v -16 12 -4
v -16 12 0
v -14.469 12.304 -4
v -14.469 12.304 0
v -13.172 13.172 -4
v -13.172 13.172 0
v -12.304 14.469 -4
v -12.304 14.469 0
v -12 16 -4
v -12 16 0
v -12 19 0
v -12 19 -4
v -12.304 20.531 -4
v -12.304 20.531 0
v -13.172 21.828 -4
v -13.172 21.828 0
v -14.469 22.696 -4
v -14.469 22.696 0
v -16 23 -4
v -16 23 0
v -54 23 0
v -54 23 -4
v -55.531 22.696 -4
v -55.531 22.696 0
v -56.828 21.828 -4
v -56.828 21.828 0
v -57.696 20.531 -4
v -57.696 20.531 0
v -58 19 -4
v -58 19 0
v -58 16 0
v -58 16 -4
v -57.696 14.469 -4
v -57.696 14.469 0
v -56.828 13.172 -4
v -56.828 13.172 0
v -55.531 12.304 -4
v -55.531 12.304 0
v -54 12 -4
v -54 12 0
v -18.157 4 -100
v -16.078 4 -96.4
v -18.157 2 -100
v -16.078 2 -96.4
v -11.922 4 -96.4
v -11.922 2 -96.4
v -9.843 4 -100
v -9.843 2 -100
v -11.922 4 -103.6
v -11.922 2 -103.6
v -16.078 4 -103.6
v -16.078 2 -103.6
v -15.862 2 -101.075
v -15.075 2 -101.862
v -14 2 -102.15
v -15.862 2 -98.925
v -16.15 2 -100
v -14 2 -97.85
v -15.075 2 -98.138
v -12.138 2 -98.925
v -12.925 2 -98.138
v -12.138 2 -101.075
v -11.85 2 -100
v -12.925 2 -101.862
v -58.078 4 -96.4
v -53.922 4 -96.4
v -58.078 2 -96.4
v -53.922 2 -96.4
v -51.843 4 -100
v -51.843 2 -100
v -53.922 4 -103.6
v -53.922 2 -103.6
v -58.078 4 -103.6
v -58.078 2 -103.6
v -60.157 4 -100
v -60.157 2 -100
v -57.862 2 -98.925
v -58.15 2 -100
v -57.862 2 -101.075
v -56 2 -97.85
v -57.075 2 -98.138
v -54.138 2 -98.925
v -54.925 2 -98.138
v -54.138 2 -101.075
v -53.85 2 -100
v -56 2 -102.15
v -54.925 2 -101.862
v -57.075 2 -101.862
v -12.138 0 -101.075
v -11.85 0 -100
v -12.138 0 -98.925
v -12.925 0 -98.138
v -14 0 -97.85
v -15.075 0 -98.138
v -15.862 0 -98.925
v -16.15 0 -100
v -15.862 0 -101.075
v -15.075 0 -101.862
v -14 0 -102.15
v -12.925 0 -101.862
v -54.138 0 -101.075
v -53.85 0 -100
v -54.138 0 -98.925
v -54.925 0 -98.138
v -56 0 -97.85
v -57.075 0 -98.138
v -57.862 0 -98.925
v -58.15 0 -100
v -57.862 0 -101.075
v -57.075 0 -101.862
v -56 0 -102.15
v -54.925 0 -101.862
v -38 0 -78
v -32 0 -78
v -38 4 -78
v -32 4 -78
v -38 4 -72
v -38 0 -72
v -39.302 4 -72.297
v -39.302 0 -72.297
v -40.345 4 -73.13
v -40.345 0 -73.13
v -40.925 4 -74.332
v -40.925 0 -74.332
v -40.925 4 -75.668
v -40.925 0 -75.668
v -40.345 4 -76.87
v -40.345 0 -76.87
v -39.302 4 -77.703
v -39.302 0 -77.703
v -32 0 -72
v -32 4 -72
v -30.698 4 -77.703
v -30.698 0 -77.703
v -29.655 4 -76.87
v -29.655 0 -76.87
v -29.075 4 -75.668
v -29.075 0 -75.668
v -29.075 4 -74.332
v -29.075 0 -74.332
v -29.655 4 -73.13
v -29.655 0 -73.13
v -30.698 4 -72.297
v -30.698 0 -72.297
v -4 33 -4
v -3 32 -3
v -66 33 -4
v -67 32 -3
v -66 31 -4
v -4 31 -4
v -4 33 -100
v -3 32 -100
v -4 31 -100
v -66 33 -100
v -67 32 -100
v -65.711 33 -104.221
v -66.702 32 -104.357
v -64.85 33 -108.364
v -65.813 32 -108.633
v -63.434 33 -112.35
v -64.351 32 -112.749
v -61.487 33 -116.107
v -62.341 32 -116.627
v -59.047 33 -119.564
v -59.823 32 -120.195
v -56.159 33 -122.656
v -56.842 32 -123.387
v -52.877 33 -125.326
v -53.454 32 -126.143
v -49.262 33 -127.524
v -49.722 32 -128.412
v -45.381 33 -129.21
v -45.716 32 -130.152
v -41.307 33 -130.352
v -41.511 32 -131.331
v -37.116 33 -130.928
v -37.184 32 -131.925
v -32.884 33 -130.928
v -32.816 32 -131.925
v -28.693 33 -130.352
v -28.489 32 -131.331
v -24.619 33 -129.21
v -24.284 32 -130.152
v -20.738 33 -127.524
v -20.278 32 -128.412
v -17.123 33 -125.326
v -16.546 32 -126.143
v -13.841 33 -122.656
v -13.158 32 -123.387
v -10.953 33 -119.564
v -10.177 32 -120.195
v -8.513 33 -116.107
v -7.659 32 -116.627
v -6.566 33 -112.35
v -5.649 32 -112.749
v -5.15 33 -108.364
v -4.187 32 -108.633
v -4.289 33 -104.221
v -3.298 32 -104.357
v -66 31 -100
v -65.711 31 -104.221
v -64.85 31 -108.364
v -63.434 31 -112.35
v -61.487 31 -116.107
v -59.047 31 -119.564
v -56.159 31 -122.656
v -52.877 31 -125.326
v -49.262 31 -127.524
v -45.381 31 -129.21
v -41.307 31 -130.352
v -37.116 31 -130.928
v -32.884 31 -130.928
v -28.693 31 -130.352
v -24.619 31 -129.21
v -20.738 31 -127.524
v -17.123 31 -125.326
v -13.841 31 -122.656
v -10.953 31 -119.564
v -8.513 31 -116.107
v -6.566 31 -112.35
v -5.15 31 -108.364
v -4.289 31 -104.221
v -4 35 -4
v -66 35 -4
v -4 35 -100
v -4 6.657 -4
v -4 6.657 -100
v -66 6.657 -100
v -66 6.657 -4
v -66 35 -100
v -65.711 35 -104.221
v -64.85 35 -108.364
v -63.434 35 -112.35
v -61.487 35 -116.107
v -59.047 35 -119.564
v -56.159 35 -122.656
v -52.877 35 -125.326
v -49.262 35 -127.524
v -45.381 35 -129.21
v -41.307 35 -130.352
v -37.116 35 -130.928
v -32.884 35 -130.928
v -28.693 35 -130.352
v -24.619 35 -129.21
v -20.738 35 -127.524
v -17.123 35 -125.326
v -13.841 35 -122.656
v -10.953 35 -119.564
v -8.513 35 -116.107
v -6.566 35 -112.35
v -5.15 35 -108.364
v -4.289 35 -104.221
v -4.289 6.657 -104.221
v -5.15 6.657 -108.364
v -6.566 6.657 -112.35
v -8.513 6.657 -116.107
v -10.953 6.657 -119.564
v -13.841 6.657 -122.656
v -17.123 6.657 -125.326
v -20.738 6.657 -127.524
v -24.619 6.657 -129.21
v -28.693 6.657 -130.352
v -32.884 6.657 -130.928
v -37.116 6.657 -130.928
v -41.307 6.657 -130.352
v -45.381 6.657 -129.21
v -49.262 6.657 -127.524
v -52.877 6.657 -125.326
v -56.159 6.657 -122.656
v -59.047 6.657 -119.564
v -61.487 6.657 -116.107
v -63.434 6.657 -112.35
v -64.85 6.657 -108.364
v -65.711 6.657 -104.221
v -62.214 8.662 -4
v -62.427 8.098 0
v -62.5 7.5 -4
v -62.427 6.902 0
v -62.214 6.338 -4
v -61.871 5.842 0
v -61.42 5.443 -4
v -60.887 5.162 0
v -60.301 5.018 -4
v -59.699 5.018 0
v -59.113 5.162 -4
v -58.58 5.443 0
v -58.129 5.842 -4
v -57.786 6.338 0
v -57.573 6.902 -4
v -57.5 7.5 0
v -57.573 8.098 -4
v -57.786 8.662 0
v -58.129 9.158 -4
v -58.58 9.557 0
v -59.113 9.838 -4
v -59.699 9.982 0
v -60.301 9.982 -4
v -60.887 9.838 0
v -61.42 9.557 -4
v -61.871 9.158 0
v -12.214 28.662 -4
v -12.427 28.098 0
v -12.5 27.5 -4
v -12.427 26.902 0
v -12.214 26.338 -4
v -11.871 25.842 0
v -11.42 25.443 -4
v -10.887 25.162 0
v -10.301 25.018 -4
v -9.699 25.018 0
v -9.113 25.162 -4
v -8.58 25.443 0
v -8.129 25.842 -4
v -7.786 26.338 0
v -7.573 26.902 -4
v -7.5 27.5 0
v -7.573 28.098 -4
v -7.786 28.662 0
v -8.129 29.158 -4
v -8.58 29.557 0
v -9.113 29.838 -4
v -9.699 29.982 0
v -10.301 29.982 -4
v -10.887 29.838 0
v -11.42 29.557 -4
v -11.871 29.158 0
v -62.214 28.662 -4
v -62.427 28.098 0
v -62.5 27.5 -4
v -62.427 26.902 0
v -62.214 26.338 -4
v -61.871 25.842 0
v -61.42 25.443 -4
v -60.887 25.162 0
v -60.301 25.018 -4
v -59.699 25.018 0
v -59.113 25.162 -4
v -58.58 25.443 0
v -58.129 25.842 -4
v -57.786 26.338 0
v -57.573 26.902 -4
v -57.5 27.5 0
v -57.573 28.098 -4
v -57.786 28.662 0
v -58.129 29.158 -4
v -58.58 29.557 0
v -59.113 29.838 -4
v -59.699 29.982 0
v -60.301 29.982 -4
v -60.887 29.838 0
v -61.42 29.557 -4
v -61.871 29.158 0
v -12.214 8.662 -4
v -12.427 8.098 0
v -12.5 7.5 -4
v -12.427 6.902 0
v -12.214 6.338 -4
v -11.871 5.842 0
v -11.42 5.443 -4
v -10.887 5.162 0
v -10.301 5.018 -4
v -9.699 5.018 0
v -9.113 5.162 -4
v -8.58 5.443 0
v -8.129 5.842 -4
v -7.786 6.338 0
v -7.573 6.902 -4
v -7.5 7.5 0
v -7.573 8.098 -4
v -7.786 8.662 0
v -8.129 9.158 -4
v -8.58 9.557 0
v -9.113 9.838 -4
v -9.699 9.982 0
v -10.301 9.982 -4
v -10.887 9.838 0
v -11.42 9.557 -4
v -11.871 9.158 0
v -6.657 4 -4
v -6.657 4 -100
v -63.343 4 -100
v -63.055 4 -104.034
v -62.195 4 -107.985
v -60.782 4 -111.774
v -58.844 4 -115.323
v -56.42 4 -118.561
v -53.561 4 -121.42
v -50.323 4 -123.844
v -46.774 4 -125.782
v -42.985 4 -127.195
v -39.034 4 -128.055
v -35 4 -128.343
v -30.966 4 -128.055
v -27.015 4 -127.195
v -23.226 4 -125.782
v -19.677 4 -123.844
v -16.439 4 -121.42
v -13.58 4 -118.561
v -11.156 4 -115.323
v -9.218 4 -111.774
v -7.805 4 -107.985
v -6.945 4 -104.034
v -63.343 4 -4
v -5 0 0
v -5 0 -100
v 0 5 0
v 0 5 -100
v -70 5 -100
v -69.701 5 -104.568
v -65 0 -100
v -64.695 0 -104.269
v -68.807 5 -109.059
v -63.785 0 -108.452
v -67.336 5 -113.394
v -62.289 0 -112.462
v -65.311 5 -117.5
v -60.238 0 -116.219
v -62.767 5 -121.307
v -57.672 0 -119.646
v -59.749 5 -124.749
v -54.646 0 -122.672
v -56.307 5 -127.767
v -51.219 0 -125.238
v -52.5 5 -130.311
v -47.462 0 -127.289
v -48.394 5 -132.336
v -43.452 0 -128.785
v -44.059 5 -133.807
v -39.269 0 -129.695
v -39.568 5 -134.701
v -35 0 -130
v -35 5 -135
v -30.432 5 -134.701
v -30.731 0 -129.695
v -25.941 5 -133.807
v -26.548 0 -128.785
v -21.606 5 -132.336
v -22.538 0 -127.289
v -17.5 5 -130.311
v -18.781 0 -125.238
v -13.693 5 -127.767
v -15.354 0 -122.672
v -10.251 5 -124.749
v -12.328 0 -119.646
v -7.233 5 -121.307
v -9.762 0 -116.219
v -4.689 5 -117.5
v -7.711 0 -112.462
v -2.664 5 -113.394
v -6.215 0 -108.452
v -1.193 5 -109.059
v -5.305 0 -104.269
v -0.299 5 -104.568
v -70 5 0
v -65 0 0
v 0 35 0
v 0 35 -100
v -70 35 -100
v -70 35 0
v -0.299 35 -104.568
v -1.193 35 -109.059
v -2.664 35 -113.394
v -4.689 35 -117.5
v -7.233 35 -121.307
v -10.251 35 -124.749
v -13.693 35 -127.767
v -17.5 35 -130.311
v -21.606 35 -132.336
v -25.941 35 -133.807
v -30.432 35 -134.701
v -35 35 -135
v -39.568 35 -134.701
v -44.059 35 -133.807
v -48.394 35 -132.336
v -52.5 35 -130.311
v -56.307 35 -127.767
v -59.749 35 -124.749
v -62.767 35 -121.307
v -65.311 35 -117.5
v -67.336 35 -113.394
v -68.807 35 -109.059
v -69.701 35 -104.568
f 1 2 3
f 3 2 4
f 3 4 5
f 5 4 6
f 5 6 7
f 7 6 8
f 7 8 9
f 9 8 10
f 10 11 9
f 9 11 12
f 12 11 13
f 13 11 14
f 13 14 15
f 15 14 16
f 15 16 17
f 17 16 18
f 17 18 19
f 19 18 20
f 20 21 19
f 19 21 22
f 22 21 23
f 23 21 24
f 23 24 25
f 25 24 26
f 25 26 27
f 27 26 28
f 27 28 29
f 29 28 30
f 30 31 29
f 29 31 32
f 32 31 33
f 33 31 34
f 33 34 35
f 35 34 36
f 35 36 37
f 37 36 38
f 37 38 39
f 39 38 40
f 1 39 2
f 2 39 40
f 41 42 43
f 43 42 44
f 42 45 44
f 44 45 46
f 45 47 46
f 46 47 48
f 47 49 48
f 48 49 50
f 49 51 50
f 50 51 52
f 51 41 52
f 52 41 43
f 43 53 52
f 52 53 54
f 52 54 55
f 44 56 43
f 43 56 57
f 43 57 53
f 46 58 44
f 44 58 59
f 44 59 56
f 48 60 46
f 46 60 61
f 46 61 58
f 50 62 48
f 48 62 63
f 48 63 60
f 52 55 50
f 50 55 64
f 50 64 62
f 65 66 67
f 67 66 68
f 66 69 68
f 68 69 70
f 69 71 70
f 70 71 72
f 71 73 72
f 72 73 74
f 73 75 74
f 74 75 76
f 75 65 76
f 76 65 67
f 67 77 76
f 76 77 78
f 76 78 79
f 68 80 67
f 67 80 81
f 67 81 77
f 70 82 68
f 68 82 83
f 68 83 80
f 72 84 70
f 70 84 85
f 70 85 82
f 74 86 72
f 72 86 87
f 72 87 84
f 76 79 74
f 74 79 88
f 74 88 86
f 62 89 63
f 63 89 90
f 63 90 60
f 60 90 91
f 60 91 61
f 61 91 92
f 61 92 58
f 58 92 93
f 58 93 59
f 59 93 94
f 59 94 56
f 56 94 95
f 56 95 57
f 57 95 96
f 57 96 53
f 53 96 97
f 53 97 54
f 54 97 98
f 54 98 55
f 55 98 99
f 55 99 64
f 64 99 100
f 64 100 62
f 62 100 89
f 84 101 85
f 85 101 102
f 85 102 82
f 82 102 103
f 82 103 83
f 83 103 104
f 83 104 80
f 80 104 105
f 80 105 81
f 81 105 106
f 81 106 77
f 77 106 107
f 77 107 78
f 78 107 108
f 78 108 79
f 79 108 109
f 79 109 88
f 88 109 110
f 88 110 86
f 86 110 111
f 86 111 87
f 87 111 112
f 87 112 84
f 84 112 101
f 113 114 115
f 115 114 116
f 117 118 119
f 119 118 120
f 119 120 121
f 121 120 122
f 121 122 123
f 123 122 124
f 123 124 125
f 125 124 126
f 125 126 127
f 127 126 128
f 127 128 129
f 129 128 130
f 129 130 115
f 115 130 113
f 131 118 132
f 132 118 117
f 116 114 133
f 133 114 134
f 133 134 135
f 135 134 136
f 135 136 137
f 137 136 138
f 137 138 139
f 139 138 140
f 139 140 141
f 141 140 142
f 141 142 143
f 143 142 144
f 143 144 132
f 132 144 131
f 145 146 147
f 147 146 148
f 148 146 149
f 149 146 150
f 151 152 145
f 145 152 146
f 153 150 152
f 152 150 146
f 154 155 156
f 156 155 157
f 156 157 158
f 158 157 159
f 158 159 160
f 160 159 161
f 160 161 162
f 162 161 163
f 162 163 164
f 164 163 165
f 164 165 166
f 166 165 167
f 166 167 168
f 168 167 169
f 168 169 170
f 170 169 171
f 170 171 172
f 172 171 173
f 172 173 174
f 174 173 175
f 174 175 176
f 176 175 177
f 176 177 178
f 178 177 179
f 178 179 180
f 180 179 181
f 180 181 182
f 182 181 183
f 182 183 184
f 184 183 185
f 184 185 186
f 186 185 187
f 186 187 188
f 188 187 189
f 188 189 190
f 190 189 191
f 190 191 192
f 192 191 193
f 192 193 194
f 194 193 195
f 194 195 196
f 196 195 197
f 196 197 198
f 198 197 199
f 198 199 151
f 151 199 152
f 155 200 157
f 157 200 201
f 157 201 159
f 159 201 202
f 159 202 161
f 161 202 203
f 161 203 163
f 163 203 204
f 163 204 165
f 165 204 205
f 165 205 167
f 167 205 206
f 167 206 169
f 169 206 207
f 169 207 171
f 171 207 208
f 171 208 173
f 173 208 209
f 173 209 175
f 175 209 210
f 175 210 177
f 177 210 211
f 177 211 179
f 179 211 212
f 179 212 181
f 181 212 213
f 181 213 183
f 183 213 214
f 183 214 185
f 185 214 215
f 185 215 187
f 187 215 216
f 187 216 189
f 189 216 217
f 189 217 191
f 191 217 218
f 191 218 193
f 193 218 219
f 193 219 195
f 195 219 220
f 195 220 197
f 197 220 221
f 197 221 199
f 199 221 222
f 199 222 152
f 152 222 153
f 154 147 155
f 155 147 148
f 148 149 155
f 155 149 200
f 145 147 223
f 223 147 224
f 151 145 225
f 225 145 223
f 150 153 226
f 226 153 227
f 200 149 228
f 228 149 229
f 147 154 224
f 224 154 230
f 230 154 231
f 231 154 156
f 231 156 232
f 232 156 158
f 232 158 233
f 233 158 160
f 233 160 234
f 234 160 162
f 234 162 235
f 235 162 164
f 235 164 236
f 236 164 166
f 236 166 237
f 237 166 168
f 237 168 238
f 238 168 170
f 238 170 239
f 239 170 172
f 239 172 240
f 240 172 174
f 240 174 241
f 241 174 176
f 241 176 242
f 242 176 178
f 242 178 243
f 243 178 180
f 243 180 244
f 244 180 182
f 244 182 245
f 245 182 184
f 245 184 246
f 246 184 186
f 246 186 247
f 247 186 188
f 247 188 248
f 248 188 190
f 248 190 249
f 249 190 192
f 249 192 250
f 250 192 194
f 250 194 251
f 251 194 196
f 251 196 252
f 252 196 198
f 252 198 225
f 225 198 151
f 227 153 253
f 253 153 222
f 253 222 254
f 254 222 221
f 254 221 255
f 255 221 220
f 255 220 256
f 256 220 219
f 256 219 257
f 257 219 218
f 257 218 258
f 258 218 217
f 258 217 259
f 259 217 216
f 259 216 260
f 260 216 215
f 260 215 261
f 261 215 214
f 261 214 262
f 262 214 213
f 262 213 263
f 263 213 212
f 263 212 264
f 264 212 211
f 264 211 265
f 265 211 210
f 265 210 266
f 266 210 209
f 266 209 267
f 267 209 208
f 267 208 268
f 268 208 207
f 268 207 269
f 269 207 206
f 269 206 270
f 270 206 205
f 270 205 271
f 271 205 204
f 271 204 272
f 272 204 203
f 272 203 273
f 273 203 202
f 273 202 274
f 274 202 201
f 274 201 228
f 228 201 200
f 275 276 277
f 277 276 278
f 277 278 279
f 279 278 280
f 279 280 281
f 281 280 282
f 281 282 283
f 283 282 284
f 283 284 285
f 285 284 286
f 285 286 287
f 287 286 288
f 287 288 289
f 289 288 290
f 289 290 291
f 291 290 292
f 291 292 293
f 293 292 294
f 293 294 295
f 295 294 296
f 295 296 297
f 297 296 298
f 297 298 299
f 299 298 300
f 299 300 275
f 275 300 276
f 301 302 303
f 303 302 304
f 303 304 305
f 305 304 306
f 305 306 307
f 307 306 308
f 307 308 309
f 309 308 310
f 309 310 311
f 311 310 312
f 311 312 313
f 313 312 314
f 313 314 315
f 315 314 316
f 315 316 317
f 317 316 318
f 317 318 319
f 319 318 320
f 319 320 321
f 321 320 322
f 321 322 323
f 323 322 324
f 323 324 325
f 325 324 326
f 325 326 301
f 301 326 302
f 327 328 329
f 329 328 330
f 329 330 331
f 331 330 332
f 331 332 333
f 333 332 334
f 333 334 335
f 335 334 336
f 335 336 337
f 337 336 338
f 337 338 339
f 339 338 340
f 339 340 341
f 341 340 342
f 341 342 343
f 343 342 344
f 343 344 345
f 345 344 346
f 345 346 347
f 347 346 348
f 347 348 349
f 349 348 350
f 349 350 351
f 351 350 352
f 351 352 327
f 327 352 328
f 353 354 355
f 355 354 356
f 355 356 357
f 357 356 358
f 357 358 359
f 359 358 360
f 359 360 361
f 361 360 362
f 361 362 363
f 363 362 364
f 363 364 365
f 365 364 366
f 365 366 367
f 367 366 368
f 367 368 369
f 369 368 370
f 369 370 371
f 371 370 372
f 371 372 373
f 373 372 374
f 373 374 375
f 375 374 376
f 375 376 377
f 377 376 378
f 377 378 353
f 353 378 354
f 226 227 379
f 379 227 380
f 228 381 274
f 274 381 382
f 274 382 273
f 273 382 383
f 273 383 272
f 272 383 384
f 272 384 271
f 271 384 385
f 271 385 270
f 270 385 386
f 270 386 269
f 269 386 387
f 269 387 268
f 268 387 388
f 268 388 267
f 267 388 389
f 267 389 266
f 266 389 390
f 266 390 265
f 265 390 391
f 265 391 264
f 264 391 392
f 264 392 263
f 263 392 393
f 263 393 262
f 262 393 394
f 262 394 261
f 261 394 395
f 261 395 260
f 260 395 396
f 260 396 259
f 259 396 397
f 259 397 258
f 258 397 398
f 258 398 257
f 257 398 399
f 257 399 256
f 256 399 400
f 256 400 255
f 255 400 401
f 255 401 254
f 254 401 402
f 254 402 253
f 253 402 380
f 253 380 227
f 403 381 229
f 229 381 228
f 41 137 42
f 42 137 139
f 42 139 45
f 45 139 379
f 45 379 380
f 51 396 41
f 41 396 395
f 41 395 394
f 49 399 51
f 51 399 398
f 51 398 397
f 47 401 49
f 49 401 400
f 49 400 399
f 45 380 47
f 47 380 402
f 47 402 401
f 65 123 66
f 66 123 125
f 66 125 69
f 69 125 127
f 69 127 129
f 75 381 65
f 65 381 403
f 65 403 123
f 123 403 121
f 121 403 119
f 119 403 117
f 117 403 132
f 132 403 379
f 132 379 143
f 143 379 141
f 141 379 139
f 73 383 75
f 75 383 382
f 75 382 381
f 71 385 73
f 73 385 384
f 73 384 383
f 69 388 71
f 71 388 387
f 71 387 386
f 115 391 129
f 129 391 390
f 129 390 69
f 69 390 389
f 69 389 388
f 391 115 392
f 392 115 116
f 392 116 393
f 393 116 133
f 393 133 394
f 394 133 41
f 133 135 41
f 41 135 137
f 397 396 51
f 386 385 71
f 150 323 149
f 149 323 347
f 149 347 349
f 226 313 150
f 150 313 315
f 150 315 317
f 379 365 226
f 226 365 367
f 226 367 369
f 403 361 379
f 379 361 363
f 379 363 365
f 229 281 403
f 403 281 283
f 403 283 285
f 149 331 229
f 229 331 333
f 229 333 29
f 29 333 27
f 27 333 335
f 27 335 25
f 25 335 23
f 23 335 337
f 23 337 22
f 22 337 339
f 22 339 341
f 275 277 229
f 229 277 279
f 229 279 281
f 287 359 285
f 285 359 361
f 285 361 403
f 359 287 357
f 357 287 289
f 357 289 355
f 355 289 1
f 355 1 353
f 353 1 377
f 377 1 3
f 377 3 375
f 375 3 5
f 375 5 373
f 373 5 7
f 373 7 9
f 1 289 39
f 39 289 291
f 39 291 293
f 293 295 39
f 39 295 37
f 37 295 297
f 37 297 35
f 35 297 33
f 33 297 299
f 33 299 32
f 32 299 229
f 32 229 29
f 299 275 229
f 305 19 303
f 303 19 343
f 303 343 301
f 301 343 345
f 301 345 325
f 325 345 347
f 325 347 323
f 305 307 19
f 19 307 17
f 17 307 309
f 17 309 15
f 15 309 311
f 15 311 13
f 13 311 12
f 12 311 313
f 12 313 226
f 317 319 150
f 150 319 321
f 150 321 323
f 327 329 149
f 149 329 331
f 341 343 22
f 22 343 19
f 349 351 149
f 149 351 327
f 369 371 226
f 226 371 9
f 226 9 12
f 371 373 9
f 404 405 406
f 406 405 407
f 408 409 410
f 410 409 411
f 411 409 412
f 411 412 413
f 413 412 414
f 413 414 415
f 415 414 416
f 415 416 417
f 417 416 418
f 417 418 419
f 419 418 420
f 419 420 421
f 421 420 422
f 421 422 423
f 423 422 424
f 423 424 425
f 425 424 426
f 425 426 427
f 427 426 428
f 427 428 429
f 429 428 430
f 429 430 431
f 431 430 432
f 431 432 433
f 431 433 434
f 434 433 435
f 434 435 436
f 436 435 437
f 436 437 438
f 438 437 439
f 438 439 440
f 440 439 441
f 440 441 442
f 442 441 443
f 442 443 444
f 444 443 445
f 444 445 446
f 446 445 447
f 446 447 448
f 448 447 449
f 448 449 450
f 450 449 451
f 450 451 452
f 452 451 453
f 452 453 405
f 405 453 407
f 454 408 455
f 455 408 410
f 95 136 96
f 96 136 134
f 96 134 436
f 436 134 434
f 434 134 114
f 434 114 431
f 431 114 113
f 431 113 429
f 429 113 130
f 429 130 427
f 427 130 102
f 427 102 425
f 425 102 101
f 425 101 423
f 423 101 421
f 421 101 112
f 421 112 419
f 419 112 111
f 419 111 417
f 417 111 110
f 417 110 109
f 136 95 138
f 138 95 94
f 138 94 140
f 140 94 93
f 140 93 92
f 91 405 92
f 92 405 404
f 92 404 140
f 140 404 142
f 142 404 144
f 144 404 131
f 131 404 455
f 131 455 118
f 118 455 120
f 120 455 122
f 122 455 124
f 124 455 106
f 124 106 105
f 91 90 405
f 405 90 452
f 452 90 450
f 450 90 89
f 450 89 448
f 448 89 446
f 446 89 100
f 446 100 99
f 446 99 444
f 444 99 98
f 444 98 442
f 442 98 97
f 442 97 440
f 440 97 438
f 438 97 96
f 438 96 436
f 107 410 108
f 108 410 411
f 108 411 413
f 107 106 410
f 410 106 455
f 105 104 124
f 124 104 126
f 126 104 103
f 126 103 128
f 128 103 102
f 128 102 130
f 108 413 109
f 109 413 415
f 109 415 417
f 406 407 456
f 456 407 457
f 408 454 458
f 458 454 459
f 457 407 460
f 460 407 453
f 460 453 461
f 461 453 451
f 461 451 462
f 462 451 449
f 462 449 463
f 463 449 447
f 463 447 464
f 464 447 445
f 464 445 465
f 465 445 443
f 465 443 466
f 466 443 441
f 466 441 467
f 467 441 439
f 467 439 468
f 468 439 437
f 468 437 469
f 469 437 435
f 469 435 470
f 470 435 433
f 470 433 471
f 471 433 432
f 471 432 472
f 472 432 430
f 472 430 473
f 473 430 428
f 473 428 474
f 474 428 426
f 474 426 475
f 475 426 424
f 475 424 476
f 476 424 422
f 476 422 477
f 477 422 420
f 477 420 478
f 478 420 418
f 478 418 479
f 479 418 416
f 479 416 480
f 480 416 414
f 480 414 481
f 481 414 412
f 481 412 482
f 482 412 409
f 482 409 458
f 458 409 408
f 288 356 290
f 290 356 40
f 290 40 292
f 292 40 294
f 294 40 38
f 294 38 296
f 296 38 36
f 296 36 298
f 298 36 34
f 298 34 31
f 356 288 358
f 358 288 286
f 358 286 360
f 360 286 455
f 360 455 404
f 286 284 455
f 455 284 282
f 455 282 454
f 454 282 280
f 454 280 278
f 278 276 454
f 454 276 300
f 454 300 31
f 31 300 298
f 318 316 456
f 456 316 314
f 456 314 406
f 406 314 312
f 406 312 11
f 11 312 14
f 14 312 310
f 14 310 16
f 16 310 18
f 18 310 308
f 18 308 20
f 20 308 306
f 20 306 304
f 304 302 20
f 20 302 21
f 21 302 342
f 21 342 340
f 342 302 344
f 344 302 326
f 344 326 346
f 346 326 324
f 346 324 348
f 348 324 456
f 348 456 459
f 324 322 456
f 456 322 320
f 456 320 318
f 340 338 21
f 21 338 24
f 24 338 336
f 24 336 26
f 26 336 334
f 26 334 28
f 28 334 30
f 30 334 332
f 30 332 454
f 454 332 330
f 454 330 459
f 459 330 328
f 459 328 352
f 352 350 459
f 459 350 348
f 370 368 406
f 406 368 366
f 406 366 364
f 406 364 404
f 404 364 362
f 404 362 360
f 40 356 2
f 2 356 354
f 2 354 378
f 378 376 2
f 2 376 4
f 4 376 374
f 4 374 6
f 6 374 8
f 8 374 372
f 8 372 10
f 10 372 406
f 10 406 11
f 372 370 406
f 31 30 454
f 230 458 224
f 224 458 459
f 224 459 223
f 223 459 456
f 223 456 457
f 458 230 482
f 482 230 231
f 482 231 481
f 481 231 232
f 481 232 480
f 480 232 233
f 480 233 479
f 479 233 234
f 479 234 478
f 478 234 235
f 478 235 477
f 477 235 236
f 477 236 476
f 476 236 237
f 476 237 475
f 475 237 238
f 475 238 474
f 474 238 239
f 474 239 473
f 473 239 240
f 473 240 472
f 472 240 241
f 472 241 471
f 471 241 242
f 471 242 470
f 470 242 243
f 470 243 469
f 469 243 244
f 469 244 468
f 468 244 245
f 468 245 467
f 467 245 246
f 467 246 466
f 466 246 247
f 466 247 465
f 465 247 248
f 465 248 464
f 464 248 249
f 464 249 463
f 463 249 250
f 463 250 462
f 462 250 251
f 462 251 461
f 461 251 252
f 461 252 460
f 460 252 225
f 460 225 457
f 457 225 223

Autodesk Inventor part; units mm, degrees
ref_plane "YZ Plane" through (0, 0, 0) normal (1, 0, 0) x (0, 1, 0)
sketch "Sketch1" plane through (0, 0, 0) normal (0, 1, 0) x (-1, 0, 0)
  line L0 (0, 0) -> (70, 0)
  line L1 (70, 0) -> (70, -100)
  line L2 (70, -100) -> (0, -100)
  line L3 (0, -100) -> (0, 0)
  circle A0 centre (35, -100) radius 35
  point P0 (0, -100)
  dimension "d0" = 70
  dimension "d1" = 100
extrude "Extrusion1" add sketch "Sketch1" along normal blind 35
chamfer "Chamfer1" distance 5 angle 45 3 edges at (0, 0, -50) (-35, 0, -135) (-70, 0, -50)
shell "Shell1" thickness 4 removed faces 1 at (-23.3333, 35, -33.3333)
sketch "Sketch2" plane through (-70, 0, 0) normal (0, 0, 1) x (1, 0, 0)
  line L0 (35, 44.7542) -> (35, -30.4775) construction
  line L1 (75.874, 17.5) -> (-5.874, 17.5) construction
  line L2 (0, 35) -> (70, 35) projected
  line L3 (70, 0) -> (70, 35) projected
  line L4 (0, 0) -> (0, 35) projected
  line L5 (0, 0) -> (70, 0) projected
  line L6 (58, 23) -> (12, 23)
  line L7 (12, 23) -> (12, 12)
  line L8 (12, 12) -> (58, 12)
  line L9 (58, 12) -> (58, 23)
  circle A0 centre (10, 27.5) radius 2.5
  circle A1 centre (60, 7.5) radius 2.5
  circle A2 centre (10, 7.5) radius 2.5
  circle A3 centre (60, 27.5) radius 2.5
  point P0 (35, 17.5)
  point P1 (35, 35)
  point P2 (70, 17.5)
  dimension "d7" = 12
  dimension "d8" = 5
  dimension "d9" = 50
  dimension "d10" = 20
extrude "Extrusion2" cut sketch "Sketch2" against normal blind 50 contours L9 L8 L7 L6 | A0 | A1 | A2 | A3
ref_plane "Work Plane2" through (0, 32, 0) normal (0, 1, 0) x (1, 0, 0)
sketch "Sketch4" plane through (0, 32, 0) normal (0, 1, 0) x (1, 0, 0)
  line L0 (-66, 4) -> (-66, 100) projected
  arc A0 (-4, 100) -> (-66, 100) centre (-35, 100) ccw projected
  line L1 (-4, 100) -> (-4, 4) projected
  line L2 (-4, 4) -> (-66, 4) projected
  point P0 (0, 0)
ref_plane "Work Plane3" through (-66, 32, -4) normal (0, 0, -1) x (-1, 0, 0)
sketch "Sketch5" plane through (-66, 32, -4) normal (0, 0, -1) x (-1, 0, 0)
  line L0 (0, 1) -> (1, 0)
  line L1 (1, 0) -> (0, -1)
  line L2 (0, -1) -> (0, 1)
  line L3 (2.655, 0) -> (0.8949, 0) construction
  point P0 (-66, -32)
  point P1 (0, 0)
  point P2 (0, 0)
  point P3 (0, 0)
  dimension "d29" = 1
  dimension "d30" = 45
sweep "Sweep1" cut profiles "Sketch5" path "Sketch4"
sketch "Sketch6" plane through (-35, 4, -100) normal (0, 1, 0) x (1, 0, 0)
  circle A0 centre (-21, 0) radius 2.15
  circle A1 centre (21, 0) radius 2.15
  line L0 (0, -2.8251) -> (0, 10.2985) construction
  arc A2 (31, 0) -> (-31, 0) centre (0, 0) ccw projected
  line L1 (3, -25) -> (-3, -25) construction
  line L2 (3, -22) -> (-3, -22)
  line L3 (-3, -28) -> (3, -28)
  arc A3 (3, -28) -> (3, -22) centre (3, -25) ccw
  arc A4 (-3, -22) -> (-3, -28) centre (-3, -25) ccw
  point P0 (35, -100)
  point P1 (0, 31)
  point P2 (0, -25)
  dimension "d33" = 4.3
  dimension "d34" = 42
  dimension "d37" = 6
  dimension "d38" = 6
  dimension "d39" = 25
extrude "Extrusion5" cut sketch "Sketch6" against normal blind 50
sketch "Sketch7" plane through (-35, 4, -100) normal (0, 1, 0) x (1, 0, 0)
  line L0 (-23.0785, 3.6) -> (-18.9215, 3.6)
  line L1 (-18.9215, 3.6) -> (-16.8431, 0)
  line L2 (-16.8431, 0) -> (-18.9215, -3.6)
  line L3 (-18.9215, -3.6) -> (-23.0785, -3.6)
  line L4 (-23.0785, -3.6) -> (-25.1569, 0)
  line L5 (-25.1569, 0) -> (-23.0785, 3.6)
  circle A0 centre (-21, 0) radius 2.15 projected
  circle A1 centre (21, 0) radius 2.15 projected
  line L6 (23.0785, 3.6) -> (25.1569, 0)
  line L7 (25.1569, 0) -> (23.0785, -3.6)
  line L8 (23.0785, -3.6) -> (18.9215, -3.6)
  line L9 (18.9215, -3.6) -> (16.8431, 0)
  line L10 (16.8431, 0) -> (18.9215, 3.6)
  line L11 (18.9215, 3.6) -> (23.0785, 3.6)
  point P0 (35, -100)
  point P1 (-21, -3.6)
  dimension "d40" = 7.2
extrude "Extrusion6" cut sketch "Sketch7" against normal blind 2
fillet "Fillet1" radius 4 4 edges at (-58, 12, -2) (-58, 23, -2) (-12, 23, -2) (-12, 12, -2)
equation "\"d11\" = d9"
equation "\"d35\" = d9"
properties part number "SCARA arm"
